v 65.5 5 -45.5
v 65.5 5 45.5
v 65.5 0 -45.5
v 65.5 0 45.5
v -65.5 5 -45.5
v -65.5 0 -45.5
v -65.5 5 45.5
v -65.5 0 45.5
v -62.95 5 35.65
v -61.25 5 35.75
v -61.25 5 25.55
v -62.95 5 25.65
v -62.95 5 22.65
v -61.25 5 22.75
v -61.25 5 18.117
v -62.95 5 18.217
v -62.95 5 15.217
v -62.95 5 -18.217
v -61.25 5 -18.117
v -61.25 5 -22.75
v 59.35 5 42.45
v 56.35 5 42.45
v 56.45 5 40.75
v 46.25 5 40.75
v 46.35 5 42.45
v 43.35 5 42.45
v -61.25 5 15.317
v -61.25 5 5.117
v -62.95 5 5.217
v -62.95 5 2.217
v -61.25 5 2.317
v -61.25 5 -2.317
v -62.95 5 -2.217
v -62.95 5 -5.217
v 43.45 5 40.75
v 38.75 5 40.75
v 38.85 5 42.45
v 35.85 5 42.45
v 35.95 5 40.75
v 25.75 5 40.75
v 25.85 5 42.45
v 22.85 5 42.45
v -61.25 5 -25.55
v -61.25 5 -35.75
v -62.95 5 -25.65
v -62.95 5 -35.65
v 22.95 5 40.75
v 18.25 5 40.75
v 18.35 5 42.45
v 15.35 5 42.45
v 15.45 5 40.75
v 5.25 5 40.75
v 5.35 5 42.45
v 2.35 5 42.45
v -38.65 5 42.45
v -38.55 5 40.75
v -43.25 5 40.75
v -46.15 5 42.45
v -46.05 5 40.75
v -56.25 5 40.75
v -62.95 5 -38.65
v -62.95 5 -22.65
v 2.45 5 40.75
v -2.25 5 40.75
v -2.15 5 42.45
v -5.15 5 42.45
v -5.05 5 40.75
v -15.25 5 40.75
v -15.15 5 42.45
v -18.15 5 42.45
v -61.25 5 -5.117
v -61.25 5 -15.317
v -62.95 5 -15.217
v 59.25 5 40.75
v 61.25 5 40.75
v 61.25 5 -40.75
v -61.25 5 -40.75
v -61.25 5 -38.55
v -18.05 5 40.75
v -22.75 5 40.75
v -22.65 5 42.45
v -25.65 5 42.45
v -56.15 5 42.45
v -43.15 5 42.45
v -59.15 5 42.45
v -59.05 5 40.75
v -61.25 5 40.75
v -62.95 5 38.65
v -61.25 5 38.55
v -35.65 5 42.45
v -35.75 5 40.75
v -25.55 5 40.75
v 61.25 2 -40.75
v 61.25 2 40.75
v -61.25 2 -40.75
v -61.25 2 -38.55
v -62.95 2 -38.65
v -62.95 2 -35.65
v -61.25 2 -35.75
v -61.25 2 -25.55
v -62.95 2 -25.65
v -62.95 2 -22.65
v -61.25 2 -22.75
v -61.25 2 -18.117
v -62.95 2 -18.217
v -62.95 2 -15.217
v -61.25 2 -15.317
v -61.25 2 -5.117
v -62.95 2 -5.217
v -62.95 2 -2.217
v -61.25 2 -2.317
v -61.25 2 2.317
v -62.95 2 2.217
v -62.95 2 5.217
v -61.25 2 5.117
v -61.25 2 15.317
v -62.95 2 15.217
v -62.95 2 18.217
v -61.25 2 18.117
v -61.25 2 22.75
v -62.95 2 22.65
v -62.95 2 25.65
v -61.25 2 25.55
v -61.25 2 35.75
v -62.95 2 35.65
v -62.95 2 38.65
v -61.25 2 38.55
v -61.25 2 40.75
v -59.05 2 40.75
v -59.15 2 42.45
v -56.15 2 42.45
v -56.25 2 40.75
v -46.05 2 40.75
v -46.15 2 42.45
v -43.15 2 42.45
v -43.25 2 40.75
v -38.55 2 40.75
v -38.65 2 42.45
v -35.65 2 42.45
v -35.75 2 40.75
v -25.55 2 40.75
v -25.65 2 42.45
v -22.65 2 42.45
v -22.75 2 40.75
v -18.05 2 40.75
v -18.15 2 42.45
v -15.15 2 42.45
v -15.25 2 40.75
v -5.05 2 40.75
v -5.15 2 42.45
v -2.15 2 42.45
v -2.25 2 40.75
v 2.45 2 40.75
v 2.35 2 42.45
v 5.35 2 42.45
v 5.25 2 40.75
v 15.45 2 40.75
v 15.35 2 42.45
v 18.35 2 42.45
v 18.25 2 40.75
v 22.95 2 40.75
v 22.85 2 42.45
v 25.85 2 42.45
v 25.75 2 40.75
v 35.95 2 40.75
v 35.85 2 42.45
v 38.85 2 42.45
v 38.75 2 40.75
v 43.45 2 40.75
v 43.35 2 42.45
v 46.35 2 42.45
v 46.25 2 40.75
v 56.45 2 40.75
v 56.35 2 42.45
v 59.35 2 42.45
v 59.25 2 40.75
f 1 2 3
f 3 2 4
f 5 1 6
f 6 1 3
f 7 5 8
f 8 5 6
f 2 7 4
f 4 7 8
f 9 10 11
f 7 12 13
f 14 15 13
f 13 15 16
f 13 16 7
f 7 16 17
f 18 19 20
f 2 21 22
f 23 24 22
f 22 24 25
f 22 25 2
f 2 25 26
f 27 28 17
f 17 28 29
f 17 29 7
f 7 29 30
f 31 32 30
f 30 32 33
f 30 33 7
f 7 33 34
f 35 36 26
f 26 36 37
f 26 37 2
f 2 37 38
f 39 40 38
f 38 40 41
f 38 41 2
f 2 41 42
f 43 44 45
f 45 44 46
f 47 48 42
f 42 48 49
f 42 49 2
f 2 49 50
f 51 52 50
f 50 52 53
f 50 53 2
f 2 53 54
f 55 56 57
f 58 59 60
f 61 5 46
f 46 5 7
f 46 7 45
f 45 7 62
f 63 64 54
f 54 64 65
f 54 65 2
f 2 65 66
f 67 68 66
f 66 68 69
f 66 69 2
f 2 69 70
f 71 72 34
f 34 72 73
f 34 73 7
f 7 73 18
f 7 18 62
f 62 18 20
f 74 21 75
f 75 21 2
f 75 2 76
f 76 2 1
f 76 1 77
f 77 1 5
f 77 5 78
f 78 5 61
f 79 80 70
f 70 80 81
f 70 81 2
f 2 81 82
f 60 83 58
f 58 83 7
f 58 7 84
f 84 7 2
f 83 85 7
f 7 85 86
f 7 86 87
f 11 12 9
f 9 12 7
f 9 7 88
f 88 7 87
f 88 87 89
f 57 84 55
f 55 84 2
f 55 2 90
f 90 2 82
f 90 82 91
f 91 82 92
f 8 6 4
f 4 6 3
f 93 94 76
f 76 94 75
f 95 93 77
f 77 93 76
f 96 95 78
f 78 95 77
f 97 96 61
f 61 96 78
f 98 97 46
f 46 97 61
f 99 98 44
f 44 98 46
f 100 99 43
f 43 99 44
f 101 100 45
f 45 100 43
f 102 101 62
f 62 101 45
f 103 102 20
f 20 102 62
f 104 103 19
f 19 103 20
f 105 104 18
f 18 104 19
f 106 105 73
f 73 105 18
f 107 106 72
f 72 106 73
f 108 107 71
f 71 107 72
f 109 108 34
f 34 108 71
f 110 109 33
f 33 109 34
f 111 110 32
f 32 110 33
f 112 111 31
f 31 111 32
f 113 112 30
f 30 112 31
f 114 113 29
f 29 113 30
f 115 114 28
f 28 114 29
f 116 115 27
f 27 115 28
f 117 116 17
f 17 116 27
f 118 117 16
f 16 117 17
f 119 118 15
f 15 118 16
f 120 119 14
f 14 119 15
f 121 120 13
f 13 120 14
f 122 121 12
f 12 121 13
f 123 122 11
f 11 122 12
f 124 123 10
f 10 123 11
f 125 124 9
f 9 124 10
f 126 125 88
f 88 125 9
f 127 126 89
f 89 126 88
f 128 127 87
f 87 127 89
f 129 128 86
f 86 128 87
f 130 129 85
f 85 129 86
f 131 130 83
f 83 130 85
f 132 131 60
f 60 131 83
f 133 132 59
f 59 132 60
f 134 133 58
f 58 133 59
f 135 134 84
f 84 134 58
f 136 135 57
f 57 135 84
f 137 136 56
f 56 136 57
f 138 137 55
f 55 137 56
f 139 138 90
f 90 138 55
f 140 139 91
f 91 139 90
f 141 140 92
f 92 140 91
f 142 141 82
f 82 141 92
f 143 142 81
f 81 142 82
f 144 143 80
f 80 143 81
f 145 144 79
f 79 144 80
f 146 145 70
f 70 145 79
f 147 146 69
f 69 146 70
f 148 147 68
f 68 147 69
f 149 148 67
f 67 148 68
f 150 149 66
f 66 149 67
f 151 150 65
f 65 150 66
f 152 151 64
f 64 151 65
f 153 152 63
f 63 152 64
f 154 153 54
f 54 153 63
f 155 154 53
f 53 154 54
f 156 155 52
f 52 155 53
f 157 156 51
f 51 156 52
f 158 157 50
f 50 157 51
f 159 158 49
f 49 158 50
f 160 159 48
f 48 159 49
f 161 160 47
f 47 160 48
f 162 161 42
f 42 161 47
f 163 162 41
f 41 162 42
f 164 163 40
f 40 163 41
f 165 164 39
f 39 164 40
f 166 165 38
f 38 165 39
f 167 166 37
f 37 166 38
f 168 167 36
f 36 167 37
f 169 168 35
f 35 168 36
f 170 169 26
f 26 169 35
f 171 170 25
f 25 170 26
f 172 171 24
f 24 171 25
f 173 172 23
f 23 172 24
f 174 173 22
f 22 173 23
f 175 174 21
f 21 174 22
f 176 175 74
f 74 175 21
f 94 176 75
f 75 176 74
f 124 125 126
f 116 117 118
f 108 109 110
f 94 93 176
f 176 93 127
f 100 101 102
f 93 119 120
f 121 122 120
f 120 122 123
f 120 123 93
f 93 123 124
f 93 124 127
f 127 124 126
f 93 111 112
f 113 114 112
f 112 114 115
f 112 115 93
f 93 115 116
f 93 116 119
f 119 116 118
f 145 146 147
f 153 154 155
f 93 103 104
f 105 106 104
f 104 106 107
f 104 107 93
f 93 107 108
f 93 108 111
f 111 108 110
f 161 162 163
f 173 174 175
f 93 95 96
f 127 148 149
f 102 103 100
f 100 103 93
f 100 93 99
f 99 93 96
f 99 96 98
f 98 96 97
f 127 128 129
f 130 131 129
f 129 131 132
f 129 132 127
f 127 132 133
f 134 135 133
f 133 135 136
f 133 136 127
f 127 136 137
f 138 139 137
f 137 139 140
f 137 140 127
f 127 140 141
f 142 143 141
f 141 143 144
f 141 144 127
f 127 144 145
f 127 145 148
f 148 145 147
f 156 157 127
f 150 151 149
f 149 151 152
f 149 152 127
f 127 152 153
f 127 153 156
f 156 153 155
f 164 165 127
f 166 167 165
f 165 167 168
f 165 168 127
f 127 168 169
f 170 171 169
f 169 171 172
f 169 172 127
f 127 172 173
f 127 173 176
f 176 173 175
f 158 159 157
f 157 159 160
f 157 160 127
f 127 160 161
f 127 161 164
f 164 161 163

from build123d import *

# Parameters (mm, degrees)
SKETCH1_W           = 131
SKETCH1_H           = 91
BOSS_EXTRUDE1_DEPTH = 5
CUT_EXTRUDE2_DEPTH  = 3


with BuildPart() as part:
    # Sketch1 → Boss-Extrude1 (new body)
    with BuildSketch(Plane(origin=(0, 0, 0), x_dir=(1, 0, 0), z_dir=(0, 1, 0))):
        Rectangle(SKETCH1_W, SKETCH1_H)
    extrude(amount=BOSS_EXTRUDE1_DEPTH)

    # Sketch3 → Cut-Extrude2 (cut)
    with BuildSketch(Plane(origin=(0, 5, 0), x_dir=(1, 0, 0), z_dir=(0, 1, 0))):
        Polygon((-61.25, -38.55), (-61.25, -40.75), (-59.05, -40.75), (-59.15, -42.45), (-56.15, -42.45), (-56.25, -40.75), (-46.05, -40.75), (-46.15, -42.45), (-43.15, -42.45), (-43.25, -40.75), (-38.55, -40.75), (-38.65, -42.45), (-35.65, -42.45), (-35.75, -40.75), (-25.55, -40.75), (-25.65, -42.45), (-22.65, -42.45), (-22.75, -40.75), (-18.05, -40.75), (-18.15, -42.45), (-15.15, -42.45), (-15.25, -40.75), (-5.05, -40.75), (-5.15, -42.45), (-2.15, -42.45), (-2.25, -40.75), (2.45, -40.75), (2.35, -42.45), (5.35, -42.45), (5.25, -40.75), (15.45, -40.75), (15.35, -42.45), (18.35, -42.45), (18.25, -40.75), (22.95, -40.75), (22.85, -42.45), (25.85, -42.45), (25.75, -40.75), (35.95, -40.75), (35.85, -42.45), (38.85, -42.45), (38.75, -40.75), (43.45, -40.75), (43.35, -42.45), (46.35, -42.45), (46.25, -40.75), (56.45, -40.75), (56.35, -42.45), (59.35, -42.45), (59.25, -40.75), (61.25, -40.75), (61.25, 40.75), (-61.25, 40.75), (-61.25, 38.55), (-62.95, 38.65), (-62.95, 35.65), (-61.25, 35.75), (-61.25, 25.55), (-62.95, 25.65), (-62.95, 22.65), (-61.25, 22.75), (-61.25, 18.116666667), (-62.95, 18.216666667), (-62.95, 15.216666667), (-61.25, 15.316666667), (-61.25, 5.116666667), (-62.95, 5.216666667), (-62.95, 2.216666667), (-61.25, 2.316666667), (-61.25, -2.316666667), (-62.95, -2.216666667), (-62.95, -5.216666667), (-61.25, -5.116666667), (-61.25, -15.316666667), (-62.95, -15.216666667), (-62.95, -18.216666667), (-61.25, -18.116666667), (-61.25, -22.75), (-62.95, -22.65), (-62.95, -25.65), (-61.25, -25.55), (-61.25, -35.75), (-62.95, -35.65), (-62.95, -38.65), align=None)
    extrude(amount=-CUT_EXTRUDE2_DEPTH, mode=Mode.SUBTRACT)


solid = part.part
